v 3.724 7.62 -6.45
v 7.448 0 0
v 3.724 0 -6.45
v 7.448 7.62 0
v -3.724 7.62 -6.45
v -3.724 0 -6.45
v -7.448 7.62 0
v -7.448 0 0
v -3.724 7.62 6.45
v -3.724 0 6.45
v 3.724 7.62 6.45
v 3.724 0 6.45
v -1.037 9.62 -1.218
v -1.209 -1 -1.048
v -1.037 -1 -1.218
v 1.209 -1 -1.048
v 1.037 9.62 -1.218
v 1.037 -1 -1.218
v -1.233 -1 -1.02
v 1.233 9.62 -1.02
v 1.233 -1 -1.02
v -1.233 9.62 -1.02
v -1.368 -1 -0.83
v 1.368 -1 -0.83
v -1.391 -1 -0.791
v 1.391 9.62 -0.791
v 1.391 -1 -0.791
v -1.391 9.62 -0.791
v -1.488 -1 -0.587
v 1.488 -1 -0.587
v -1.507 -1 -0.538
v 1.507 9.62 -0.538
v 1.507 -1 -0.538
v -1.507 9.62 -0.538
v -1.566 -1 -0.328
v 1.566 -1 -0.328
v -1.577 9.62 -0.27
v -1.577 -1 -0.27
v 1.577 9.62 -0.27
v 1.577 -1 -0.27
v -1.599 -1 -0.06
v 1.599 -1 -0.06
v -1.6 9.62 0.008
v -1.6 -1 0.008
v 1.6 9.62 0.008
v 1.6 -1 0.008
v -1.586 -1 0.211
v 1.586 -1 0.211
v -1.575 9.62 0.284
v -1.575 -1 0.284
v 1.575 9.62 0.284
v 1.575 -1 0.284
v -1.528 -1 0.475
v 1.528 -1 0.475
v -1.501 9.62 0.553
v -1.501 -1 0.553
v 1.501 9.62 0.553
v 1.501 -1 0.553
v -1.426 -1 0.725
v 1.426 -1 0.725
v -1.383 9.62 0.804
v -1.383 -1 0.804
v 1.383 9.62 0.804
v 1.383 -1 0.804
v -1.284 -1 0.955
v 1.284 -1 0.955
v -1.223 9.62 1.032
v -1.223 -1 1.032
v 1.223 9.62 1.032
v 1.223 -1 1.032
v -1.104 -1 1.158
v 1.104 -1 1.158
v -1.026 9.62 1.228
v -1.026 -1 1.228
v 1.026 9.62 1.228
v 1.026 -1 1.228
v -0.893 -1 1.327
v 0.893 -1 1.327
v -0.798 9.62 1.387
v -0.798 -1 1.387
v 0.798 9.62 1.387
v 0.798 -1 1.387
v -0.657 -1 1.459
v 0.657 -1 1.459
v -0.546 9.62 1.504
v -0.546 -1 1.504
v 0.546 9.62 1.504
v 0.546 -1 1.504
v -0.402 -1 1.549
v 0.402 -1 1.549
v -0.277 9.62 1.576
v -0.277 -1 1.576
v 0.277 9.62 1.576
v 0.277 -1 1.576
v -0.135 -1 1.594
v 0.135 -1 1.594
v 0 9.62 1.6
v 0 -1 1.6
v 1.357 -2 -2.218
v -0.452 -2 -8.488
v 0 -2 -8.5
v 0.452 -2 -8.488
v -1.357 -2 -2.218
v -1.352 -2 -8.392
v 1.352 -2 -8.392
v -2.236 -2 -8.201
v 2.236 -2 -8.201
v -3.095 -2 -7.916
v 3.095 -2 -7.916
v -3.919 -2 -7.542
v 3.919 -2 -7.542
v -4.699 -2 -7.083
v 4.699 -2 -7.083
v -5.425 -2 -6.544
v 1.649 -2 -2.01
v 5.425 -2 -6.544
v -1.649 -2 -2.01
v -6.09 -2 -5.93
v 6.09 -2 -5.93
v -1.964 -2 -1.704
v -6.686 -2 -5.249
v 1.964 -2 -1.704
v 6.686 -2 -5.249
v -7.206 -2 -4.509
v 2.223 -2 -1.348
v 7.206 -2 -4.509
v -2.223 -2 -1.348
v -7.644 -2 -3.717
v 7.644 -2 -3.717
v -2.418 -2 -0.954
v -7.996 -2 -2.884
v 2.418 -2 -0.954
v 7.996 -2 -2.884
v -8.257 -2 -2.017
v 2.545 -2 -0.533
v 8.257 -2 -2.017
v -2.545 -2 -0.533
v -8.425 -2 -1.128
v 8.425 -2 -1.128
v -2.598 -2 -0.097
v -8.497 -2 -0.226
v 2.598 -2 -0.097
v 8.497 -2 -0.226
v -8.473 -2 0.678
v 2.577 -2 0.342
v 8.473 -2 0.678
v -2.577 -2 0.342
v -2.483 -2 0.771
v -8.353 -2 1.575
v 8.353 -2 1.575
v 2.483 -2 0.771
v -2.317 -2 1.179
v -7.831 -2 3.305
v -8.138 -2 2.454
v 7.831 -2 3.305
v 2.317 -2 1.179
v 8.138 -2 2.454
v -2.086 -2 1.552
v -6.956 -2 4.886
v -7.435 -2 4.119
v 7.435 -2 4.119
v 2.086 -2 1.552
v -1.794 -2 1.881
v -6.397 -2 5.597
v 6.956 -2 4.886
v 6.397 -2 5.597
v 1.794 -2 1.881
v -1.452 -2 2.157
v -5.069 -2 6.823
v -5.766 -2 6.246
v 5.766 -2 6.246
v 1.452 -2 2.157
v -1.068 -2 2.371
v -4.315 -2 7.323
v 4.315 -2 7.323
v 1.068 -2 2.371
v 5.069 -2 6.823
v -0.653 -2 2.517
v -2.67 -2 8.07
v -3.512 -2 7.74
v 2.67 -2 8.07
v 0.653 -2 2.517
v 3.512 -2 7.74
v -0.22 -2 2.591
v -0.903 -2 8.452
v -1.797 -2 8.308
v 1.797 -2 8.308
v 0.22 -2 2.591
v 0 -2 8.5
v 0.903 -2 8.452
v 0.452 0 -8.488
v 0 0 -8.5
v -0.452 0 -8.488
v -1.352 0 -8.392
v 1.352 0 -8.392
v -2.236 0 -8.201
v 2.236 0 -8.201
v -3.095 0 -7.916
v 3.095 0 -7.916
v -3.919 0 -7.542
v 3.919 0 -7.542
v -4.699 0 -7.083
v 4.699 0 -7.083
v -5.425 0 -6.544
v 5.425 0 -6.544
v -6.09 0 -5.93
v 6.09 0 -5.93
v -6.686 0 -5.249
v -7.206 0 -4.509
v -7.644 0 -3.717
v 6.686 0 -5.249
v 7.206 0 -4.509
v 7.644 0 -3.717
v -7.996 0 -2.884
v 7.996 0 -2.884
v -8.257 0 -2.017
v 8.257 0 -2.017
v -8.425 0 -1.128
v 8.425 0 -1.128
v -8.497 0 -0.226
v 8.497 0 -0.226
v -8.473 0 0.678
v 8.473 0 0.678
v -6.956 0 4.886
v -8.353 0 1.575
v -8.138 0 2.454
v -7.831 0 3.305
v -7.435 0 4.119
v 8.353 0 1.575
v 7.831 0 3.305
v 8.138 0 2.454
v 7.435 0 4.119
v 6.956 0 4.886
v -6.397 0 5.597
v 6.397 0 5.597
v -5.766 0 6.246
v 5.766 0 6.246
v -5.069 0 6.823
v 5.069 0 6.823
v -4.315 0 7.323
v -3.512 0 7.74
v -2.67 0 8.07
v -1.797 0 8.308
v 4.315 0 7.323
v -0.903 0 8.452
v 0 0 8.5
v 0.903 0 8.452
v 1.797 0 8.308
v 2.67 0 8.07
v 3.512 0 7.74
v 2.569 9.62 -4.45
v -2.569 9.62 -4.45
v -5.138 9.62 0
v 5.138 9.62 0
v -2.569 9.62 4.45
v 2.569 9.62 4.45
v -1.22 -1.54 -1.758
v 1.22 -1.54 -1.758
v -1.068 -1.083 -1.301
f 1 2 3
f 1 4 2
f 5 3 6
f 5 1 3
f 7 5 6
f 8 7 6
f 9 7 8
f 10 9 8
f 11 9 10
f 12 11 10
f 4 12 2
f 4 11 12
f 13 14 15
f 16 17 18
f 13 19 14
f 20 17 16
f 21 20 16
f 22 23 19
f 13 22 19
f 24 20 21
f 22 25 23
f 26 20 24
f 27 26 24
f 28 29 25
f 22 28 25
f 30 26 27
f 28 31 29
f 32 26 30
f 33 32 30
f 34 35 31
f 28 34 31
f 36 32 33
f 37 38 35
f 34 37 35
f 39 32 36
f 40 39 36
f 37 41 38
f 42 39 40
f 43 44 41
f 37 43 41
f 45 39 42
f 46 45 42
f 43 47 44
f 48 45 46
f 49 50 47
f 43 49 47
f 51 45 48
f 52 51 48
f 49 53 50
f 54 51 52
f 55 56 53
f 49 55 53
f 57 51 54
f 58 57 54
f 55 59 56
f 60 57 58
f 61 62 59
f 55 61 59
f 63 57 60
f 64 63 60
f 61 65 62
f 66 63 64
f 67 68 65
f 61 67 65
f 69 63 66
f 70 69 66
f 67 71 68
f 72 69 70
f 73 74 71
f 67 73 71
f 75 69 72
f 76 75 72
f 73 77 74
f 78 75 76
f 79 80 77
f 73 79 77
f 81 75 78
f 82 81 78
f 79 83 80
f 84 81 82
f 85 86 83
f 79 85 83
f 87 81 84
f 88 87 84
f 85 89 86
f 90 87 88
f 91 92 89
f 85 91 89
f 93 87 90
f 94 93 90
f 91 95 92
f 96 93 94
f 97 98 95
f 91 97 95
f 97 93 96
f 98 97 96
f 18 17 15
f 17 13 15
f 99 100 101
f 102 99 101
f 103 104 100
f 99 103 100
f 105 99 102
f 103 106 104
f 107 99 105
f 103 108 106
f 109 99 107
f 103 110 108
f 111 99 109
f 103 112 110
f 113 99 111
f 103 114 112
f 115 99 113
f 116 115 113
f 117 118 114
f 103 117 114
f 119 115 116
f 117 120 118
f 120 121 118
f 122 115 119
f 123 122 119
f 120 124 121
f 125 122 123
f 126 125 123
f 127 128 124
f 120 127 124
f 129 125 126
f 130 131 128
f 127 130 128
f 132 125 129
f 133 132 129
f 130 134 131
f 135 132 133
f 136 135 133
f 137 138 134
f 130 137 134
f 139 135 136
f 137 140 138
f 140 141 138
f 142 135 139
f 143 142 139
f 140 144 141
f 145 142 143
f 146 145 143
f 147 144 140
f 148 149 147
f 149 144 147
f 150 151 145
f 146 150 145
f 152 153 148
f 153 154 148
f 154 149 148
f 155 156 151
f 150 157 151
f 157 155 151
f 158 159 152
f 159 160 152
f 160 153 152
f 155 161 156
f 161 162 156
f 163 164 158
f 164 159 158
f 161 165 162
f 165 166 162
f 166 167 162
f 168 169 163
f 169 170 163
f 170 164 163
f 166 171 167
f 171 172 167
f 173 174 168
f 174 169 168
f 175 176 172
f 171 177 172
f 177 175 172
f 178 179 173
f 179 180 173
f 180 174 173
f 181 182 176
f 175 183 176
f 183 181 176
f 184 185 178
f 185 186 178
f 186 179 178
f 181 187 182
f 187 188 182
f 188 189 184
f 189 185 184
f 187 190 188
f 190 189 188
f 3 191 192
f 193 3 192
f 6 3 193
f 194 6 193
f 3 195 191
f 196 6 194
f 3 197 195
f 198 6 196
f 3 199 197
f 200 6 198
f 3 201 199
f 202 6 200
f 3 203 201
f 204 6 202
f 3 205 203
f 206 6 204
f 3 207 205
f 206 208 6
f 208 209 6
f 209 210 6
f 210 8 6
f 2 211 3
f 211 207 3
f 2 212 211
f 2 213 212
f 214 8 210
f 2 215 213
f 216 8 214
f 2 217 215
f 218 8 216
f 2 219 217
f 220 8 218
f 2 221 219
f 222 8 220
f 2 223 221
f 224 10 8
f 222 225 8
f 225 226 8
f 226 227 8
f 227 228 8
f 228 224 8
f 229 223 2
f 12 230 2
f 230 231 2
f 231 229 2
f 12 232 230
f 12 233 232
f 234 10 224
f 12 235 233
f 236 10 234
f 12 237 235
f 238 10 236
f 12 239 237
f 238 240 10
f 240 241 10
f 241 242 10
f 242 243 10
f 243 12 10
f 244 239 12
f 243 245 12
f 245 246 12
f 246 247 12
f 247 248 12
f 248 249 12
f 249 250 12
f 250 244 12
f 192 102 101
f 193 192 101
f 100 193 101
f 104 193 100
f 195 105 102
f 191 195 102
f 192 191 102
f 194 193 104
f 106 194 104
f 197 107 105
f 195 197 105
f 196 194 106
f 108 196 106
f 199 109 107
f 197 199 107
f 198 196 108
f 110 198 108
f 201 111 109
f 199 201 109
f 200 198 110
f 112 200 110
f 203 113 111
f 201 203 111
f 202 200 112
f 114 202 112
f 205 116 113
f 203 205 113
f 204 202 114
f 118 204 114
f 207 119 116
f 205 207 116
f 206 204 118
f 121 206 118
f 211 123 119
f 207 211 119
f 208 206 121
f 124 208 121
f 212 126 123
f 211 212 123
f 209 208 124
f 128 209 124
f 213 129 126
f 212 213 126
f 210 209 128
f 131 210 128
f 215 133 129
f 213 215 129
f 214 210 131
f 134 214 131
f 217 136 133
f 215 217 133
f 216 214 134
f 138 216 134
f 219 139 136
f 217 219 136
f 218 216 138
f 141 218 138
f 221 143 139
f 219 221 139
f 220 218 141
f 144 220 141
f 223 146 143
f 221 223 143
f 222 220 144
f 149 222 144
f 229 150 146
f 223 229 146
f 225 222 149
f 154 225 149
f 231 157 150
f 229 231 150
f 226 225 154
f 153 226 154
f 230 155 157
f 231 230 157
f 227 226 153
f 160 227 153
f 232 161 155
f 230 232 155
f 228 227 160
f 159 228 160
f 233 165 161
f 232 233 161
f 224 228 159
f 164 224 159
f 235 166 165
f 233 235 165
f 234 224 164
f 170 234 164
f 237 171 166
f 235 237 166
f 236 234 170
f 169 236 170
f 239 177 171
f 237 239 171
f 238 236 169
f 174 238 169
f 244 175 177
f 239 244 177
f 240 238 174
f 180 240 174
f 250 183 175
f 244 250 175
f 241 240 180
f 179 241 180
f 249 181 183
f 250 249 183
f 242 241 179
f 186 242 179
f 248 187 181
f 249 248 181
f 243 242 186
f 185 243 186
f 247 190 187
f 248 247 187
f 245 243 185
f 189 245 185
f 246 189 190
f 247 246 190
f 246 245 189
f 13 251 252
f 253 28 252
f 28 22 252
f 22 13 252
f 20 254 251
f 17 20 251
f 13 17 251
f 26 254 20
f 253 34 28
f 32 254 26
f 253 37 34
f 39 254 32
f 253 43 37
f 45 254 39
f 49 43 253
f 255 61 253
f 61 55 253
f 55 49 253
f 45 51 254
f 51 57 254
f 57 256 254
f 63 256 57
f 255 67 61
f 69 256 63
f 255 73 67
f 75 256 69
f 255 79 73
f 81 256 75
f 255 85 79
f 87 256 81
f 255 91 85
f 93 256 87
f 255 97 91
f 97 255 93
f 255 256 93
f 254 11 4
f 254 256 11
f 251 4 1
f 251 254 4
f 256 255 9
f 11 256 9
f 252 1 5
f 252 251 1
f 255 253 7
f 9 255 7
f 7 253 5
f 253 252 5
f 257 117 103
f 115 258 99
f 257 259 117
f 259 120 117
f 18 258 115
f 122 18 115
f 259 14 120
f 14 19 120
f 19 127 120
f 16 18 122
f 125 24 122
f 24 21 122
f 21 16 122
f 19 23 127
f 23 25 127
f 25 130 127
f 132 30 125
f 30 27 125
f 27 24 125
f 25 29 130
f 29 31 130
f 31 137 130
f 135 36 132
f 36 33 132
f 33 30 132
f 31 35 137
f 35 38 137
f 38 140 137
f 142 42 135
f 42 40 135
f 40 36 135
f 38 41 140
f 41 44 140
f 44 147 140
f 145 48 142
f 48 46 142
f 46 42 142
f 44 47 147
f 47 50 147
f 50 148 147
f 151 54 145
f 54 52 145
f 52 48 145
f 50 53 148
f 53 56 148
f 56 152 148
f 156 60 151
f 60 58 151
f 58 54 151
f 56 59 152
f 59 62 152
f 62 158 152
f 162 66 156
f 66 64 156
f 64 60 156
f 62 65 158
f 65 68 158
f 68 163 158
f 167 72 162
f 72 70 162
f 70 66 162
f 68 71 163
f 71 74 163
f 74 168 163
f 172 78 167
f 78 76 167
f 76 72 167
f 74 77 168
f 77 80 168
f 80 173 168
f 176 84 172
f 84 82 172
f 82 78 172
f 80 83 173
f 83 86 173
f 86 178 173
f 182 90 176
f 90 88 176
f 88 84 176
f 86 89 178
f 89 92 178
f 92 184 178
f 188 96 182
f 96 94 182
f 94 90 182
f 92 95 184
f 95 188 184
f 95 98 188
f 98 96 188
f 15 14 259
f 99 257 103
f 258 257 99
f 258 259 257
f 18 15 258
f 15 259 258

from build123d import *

# Parameters (mm, degrees)
BOSS_EXTRUDE1_DEPTH = 7.62
SKETCH2_R           = 8.5
BOSS_EXTRUDE2_DEPTH = 2
BOSS_EXTRUDE3_DEPTH = 2
CHAMFER1_SIZE       = 2
CHAMFER2_SIZE       = 1


with BuildPart() as part:
    # Sketch1 → Boss-Extrude1 (new body)
    with BuildSketch(Plane(origin=(0, 0, 0), x_dir=(1, 0, 0), z_dir=(0, 1, 0))):
        Polygon((3.723909236, 6.45), (-3.723909236, 6.45), (-7.447818473, 0), (-3.723909236, -6.45), (3.723909236, -6.45), (7.447818473, 0), align=None)
        with BuildLine():
            Line((-1.037493712, 1.218033989), (1.037493712, 1.218033989))
            ThreePointArc((1.037493712, 1.218033989), (0, -1.6), (-1.037493712, 1.218033989))
        make_face(mode=Mode.SUBTRACT)
    extrude(amount=BOSS_EXTRUDE1_DEPTH)

    # Sketch2 → Boss-Extrude2 (add)
    with BuildSketch(Plane.XZ):
        Circle(SKETCH2_R)
        with BuildLine():
            Line((1.037493712, -1.218033989), (-1.037493712, -1.218033989))
            ThreePointArc((-1.037493712, -1.218033989), (0, 1.6), (1.037493712, -1.218033989))
        make_face(mode=Mode.SUBTRACT)
    extrude(amount=BOSS_EXTRUDE2_DEPTH)

    # Sketch3 → Boss-Extrude3 (add)
    with BuildSketch(Plane(origin=(0, 7.62, 0), x_dir=(1, 0, 0), z_dir=(0, 1, 0))):
        Polygon((7.447818473, 0), (3.723909236, 6.45), (-3.723909236, 6.45), (-7.447818473, 0), (-3.723909236, -6.45), (3.723909236, -6.45), align=None)
        with BuildLine():
            Line((1.037493712, 1.218033989), (-1.037493712, 1.218033989))
            ThreePointArc((-1.037493712, 1.218033989), (0, -1.6), (1.037493712, 1.218033989))
        make_face(mode=Mode.SUBTRACT)
    extrude(amount=BOSS_EXTRUDE3_DEPTH)

    # Chamfer1
    chamfer1_edges = [part.edges().sort_by_distance(p)[0] for p in [
        (5.585863854, 9.62, 3.225),
        (5.585863854, 9.62, -3.225),
        (0, 9.62, -6.45),
        (-5.585863854, 9.62, -3.225),
        (-5.585863854, 9.62, 3.225),
        (0, 9.62, 6.45),
    ]]
    chamfer(chamfer1_edges, length=CHAMFER1_SIZE)

    # Chamfer2
    chamfer2_edges = [part.edges().sort_by_distance(p)[0] for p in [
        (0, -2, 1.6),
        (0, -2, -1.218033989),
    ]]
    chamfer(chamfer2_edges, length=CHAMFER2_SIZE)


solid = part.part
